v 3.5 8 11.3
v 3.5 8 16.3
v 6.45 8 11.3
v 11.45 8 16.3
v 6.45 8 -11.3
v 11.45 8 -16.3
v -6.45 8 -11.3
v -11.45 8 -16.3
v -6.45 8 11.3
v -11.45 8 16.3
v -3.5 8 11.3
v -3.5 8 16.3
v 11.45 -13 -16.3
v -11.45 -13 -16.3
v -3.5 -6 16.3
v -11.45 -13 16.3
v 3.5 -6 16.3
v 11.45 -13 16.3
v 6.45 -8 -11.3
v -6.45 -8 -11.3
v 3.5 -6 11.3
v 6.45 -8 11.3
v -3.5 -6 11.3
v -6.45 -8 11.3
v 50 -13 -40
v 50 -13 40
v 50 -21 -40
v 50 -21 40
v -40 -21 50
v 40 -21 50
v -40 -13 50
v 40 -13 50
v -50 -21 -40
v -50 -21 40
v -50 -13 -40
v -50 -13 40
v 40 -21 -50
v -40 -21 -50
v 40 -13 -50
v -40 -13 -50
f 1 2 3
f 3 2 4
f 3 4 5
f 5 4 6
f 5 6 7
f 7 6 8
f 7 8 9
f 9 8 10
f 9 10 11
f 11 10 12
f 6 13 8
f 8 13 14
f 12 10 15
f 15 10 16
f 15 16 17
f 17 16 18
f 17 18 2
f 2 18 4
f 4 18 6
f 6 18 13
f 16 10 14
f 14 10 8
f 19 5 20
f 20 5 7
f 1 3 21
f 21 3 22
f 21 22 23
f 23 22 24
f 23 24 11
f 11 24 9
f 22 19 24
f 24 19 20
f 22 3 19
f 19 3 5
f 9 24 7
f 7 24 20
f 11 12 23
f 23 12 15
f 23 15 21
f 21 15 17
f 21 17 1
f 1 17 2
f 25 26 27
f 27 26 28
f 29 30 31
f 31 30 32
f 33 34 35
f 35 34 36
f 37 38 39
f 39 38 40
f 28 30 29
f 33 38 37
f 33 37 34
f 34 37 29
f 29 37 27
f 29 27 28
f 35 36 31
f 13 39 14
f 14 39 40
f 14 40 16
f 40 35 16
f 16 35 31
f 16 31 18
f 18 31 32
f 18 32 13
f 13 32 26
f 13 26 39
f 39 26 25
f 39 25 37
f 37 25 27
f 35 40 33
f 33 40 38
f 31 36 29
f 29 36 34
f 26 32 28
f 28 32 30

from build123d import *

# Parameters (mm, degrees)
SKETCH1_W               = 22.6
SKETCH1_H               = 16
BASE_BLOCK_DEPTH        = 6.45
SHELL1_T                = 5
CABLE_PASSTHROUGH_REACH = 25.786
SKETCH2_W               = 7
SKETCH2_H               = 14
SKETCH3_W               = 100
SKETCH3_H               = 100
BASE_PLATE_DEPTH        = 8
CORNER_CHAMFER_SIZE     = 10


with BuildPart() as part:
    # Sketch1 → base block (new, symmetric)
    with BuildSketch(Plane(origin=(0, 0, 0), x_dir=(0, 0, -1), z_dir=(1, 0, 0))):
        Rectangle(SKETCH1_W, SKETCH1_H)
    extrude(amount=BASE_BLOCK_DEPTH, both=True)

    # Shell1
    shell1_openings = [part.faces().sort_by_distance(p)[0] for p in [
        (0, 8, 0),
    ]]
    offset(amount=SHELL1_T, openings=shell1_openings, kind=Kind.INTERSECTION)

    # Sketch2 → cable passthrough (cut, up to next)
    with BuildSketch(Plane.XY, mode=Mode.PRIVATE) as cable_passthrough_sk1:
        with Locations((0, 1)):
            Rectangle(SKETCH2_W, SKETCH2_H)
    cable_passthrough_tool1 = extrude(cable_passthrough_sk1.sketch, amount=CABLE_PASSTHROUGH_REACH, mode=Mode.PRIVATE) & part.part
    add(cable_passthrough_tool1.solids().sort_by_distance((0, 1, 0))[0], mode=Mode.SUBTRACT)

    # Sketch3 → base plate (add)
    with BuildSketch(Plane.XZ.offset(13)):
        Rectangle(SKETCH3_W, SKETCH3_H)
    extrude(amount=BASE_PLATE_DEPTH)

    # corner chamfer
    corner_chamfer_edges = [part.edges().sort_by_distance(p)[0] for p in [
        (50, -17, -50),
        (50, -17, 50),
        (-50, -17, 50),
        (-50, -17, -50),
    ]]
    chamfer(corner_chamfer_edges, length=CORNER_CHAMFER_SIZE)


solid = part.part
